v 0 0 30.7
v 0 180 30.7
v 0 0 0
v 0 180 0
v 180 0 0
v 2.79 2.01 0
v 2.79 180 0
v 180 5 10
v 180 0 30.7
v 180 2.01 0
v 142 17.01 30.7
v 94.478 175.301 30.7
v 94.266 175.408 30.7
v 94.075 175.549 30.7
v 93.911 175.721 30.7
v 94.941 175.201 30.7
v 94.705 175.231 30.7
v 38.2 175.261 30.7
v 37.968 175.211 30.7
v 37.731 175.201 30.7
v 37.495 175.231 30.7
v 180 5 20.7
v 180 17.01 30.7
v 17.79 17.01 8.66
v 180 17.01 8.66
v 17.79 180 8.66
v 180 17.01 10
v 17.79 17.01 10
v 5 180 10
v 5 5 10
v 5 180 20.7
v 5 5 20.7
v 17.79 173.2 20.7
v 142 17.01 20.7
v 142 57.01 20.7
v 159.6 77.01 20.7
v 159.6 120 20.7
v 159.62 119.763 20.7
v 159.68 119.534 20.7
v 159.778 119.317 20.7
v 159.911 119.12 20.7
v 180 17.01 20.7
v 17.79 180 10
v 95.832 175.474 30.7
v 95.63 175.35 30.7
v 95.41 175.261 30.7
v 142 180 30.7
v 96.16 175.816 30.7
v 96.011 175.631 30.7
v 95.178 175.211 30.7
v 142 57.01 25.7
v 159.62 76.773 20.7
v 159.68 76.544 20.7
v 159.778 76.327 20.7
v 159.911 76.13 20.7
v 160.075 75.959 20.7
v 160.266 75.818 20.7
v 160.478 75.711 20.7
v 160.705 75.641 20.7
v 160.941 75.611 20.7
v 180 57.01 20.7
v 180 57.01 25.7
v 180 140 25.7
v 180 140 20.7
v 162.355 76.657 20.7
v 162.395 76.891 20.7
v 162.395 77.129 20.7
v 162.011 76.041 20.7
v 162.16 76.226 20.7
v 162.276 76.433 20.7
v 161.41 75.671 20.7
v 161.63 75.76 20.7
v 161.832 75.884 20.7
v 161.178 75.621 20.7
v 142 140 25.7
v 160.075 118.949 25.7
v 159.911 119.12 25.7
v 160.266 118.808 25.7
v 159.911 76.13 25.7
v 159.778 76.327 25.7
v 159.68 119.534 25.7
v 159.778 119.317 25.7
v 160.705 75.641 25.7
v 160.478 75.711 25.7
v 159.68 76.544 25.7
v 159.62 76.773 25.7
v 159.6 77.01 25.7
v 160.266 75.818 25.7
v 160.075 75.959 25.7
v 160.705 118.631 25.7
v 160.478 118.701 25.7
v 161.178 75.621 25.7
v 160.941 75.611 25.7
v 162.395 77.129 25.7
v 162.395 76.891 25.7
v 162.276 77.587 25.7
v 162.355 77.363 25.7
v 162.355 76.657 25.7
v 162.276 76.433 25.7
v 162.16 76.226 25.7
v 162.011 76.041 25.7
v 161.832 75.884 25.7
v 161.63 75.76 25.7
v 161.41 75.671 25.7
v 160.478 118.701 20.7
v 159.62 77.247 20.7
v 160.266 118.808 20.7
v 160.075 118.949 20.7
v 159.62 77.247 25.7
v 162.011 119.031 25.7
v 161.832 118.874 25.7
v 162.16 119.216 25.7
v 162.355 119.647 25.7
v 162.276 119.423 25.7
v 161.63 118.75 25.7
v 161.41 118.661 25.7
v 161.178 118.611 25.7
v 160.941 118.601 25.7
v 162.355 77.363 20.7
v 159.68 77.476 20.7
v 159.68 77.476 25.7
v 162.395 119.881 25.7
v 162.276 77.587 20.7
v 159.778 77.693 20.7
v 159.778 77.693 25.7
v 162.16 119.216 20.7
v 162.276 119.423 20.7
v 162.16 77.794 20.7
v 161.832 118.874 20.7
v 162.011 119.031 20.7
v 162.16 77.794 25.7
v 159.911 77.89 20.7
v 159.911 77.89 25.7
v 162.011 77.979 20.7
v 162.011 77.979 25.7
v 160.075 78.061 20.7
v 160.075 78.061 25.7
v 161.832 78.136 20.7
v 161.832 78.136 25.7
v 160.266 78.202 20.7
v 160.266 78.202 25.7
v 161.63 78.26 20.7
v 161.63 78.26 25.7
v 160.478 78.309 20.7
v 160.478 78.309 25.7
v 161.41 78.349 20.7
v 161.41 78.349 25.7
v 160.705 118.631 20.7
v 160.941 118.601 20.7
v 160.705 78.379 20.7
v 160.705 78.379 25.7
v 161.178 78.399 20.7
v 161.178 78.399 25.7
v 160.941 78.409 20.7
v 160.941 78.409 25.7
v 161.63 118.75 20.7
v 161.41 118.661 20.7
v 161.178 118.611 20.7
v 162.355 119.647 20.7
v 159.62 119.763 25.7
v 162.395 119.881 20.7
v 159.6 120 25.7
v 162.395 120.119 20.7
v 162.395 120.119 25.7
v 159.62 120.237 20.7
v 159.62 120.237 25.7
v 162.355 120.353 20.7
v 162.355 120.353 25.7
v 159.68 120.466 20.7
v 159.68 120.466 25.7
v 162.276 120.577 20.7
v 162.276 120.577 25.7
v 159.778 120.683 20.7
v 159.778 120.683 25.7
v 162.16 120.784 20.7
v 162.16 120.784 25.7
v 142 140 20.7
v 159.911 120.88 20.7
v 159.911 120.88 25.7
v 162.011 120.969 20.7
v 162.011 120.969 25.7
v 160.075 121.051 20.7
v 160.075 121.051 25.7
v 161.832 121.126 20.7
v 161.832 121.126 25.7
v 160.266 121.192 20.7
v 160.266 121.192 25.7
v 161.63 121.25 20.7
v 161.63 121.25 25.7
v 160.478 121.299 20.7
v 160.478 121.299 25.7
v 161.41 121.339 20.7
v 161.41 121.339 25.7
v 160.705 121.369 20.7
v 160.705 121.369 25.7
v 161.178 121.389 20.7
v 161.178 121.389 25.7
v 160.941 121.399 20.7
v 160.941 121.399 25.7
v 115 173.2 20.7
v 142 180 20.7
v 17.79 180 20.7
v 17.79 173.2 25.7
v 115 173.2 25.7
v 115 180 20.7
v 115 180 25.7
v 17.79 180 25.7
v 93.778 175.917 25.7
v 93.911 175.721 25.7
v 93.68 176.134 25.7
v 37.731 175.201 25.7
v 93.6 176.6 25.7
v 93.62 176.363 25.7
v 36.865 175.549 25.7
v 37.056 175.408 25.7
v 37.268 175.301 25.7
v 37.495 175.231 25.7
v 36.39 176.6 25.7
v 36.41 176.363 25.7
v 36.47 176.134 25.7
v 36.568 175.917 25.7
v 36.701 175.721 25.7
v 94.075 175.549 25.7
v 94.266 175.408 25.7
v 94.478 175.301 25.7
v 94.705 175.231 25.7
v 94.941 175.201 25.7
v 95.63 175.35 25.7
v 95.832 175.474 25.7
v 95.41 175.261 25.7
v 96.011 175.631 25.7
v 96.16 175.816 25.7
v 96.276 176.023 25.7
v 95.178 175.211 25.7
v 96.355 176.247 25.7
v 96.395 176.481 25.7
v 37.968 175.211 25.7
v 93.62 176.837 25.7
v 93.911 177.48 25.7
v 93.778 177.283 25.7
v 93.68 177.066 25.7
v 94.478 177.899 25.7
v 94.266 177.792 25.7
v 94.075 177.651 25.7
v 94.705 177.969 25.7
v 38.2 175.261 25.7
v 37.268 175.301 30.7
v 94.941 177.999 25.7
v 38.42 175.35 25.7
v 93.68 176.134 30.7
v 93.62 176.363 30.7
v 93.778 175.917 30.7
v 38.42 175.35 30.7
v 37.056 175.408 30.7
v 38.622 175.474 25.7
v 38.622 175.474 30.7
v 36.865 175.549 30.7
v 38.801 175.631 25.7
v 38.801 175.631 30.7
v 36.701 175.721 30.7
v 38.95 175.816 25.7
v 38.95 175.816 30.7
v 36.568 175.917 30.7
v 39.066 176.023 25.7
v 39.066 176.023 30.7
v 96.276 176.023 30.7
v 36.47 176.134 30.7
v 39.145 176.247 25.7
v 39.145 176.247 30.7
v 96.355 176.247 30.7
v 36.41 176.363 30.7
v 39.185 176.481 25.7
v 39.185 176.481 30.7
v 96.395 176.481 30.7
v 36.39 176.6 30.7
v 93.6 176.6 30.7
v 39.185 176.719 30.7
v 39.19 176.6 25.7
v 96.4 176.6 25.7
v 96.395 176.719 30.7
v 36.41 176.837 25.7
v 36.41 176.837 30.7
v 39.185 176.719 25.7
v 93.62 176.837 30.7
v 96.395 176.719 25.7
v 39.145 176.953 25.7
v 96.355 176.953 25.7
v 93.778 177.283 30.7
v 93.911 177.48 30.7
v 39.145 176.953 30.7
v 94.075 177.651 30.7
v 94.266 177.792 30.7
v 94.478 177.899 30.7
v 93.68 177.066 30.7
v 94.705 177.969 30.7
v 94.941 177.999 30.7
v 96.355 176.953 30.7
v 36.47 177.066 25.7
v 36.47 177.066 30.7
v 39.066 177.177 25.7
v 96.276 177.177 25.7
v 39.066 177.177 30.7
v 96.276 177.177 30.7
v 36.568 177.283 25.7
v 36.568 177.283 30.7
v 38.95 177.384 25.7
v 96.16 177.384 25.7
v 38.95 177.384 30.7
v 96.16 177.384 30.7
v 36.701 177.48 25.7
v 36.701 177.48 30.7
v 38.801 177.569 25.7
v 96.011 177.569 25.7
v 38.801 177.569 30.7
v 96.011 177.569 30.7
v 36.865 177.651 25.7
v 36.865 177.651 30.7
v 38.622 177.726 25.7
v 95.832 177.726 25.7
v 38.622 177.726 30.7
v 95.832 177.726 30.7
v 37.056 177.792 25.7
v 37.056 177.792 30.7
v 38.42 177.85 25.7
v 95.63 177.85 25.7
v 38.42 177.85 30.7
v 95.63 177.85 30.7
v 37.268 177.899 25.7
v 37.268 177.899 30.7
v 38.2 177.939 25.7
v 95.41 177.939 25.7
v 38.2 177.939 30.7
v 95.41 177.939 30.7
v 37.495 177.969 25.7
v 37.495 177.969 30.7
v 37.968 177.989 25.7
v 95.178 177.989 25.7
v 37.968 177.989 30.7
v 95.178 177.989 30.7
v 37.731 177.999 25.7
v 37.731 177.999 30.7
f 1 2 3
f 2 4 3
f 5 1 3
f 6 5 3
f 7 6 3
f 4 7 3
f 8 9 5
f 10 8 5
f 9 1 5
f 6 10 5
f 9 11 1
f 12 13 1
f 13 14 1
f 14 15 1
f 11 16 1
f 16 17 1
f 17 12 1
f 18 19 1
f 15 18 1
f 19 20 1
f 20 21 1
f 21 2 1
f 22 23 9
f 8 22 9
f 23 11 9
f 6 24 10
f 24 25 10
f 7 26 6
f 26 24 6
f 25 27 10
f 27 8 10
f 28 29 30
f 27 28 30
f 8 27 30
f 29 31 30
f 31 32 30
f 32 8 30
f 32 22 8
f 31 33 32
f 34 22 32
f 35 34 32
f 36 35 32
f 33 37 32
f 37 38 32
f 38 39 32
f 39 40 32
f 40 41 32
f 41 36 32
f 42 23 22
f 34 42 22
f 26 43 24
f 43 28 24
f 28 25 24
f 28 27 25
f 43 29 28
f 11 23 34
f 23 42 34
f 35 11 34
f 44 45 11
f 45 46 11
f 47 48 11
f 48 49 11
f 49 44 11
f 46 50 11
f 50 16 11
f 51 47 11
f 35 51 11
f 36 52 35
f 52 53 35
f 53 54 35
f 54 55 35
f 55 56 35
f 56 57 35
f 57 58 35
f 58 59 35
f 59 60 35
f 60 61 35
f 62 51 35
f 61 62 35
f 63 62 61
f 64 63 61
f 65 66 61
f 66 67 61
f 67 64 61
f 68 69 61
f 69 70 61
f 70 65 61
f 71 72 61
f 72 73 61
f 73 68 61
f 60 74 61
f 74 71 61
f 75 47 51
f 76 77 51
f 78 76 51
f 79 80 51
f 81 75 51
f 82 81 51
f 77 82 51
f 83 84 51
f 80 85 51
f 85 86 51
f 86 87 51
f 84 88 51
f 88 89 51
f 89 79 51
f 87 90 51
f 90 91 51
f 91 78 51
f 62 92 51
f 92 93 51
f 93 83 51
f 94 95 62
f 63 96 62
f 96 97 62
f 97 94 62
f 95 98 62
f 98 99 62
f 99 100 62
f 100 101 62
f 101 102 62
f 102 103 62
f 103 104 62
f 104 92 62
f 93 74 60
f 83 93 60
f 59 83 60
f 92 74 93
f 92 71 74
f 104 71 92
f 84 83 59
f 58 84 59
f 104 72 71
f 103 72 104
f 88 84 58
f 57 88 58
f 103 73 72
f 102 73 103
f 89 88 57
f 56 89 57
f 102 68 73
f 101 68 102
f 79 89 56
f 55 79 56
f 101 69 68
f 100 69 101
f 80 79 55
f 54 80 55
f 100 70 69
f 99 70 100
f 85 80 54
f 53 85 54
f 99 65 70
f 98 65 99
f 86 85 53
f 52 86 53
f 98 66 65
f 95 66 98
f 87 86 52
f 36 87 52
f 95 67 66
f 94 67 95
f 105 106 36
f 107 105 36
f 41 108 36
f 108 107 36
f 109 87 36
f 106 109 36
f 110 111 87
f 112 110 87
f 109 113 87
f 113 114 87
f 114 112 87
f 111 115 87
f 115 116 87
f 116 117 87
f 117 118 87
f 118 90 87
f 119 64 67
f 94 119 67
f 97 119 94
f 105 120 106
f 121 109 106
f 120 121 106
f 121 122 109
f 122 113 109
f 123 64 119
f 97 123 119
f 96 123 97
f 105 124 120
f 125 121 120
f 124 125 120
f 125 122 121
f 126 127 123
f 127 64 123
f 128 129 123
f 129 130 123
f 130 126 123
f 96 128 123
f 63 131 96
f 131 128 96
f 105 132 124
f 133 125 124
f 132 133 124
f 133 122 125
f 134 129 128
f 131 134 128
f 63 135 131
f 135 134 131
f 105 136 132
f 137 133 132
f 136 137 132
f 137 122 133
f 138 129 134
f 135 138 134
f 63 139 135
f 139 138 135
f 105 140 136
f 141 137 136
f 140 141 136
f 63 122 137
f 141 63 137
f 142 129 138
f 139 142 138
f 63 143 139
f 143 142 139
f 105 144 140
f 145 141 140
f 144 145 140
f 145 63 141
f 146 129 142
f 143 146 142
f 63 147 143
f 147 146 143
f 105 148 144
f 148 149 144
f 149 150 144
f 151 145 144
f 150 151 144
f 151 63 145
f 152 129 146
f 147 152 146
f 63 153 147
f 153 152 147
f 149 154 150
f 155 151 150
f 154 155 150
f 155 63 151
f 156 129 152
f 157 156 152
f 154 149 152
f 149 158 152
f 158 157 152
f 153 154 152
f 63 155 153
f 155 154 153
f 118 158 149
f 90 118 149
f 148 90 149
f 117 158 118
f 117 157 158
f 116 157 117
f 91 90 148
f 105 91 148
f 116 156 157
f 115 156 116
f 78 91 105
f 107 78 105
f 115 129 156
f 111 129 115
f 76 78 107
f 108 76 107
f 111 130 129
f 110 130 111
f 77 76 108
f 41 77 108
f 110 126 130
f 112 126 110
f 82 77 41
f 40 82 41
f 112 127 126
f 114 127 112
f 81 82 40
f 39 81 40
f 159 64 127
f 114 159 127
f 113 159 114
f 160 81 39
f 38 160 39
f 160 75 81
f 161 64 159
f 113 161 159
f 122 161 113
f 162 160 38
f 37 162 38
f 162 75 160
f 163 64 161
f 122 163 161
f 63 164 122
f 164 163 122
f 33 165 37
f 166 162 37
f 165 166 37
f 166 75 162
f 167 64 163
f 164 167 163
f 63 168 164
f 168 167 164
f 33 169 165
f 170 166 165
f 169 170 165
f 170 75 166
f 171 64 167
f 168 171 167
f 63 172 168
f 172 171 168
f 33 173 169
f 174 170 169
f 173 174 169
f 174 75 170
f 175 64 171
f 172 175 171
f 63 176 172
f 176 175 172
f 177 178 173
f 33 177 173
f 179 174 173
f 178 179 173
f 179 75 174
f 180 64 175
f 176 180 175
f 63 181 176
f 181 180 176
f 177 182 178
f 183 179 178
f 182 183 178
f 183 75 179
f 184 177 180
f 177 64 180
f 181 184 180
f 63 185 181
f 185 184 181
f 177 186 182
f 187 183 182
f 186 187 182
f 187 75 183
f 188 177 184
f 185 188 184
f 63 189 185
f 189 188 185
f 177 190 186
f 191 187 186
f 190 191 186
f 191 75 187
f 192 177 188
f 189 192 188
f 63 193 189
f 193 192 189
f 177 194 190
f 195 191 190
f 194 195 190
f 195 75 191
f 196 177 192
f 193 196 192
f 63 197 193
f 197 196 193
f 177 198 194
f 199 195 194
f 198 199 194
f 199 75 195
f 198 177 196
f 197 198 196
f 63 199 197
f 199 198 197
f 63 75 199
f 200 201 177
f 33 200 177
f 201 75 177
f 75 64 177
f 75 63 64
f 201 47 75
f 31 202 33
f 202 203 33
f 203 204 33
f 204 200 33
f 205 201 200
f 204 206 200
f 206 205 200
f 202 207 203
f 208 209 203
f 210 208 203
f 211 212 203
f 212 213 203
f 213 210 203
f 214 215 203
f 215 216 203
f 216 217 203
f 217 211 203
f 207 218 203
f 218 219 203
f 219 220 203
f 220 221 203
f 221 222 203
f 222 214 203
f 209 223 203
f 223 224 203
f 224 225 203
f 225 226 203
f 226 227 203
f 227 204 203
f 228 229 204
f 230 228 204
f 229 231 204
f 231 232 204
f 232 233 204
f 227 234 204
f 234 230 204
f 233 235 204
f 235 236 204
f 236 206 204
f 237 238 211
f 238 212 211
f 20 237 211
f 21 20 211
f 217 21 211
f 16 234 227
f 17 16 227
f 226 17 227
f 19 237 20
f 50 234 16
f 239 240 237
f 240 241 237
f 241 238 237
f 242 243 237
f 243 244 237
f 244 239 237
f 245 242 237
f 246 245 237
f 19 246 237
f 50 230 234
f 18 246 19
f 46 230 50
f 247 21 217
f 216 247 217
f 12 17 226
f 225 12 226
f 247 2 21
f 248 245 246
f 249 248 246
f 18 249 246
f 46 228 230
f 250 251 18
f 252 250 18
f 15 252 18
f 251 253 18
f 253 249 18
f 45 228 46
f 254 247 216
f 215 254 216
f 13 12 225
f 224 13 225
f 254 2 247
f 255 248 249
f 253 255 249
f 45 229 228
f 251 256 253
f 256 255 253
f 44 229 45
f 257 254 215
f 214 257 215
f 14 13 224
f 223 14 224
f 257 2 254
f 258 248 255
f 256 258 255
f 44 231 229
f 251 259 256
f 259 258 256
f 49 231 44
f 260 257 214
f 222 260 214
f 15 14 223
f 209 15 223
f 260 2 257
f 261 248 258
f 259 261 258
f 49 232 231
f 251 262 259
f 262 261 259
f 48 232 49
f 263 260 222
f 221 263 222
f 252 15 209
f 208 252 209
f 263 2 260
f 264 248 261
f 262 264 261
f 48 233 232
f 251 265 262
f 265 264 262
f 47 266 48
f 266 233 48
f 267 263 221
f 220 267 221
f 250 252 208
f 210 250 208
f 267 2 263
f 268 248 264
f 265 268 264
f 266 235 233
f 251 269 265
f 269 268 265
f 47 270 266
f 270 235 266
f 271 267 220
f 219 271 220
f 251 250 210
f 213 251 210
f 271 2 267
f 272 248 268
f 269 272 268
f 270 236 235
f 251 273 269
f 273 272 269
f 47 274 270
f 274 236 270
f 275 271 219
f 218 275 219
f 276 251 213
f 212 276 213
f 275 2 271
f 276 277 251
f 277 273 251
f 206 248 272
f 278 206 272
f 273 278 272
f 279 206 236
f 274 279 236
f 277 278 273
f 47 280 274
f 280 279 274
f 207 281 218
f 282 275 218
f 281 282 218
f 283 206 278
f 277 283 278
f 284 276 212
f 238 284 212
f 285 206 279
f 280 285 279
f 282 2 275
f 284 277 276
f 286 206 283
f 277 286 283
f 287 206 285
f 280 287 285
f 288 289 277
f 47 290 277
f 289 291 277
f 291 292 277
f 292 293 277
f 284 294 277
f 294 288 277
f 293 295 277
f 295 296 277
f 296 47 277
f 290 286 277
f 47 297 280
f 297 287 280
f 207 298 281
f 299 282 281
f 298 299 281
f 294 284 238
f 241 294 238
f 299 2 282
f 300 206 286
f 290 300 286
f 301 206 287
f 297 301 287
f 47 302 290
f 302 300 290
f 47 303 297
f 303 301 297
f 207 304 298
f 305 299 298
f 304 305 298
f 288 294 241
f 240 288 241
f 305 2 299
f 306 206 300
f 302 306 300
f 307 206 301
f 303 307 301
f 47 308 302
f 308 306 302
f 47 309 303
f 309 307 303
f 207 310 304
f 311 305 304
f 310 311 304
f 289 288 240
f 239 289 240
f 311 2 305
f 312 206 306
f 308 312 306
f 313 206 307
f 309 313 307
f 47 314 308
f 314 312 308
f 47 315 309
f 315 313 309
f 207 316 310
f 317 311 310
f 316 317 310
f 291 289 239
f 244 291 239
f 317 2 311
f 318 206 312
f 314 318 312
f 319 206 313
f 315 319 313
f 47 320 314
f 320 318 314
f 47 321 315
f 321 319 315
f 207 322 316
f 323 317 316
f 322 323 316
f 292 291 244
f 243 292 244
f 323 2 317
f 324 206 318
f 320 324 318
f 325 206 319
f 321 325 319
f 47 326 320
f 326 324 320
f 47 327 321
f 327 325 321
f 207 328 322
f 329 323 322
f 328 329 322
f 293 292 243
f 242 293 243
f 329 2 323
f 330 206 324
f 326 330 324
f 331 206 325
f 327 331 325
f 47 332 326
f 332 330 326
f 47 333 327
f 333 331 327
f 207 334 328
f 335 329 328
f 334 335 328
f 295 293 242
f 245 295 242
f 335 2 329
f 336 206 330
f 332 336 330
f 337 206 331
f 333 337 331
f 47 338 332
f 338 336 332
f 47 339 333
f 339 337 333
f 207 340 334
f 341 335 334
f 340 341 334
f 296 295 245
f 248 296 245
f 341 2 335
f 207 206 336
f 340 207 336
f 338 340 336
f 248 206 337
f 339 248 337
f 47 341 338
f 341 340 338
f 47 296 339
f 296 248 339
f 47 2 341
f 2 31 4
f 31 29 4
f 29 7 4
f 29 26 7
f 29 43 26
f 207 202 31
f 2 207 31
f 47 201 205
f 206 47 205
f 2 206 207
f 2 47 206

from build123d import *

# Parameters (mm, degrees)
CROQUIS1_W              = 180
CROQUIS1_H              = 180
SALIENTE_EXTRUIR1_DEPTH = 30.7
CROQUIS2_W              = 162.21
CROQUIS2_H              = 162.99
CORTAR_EXTRUIR1_DEPTH   = 20.7
CROQUIS4_W              = 175
CROQUIS4_H              = 10.7
CORTAR_EXTRUIR2_DEPTH   = 175
CROQUIS5_W              = 38
CROQUIS5_H              = 40
CORTAR_EXTRUIR3_DEPTH   = 10
CROQUIS6_W              = 38
CROQUIS6_H              = 82.99
CORTAR_EXTRUIR4_DEPTH   = 5
CROQUIS7_W              = 97.21
CROQUIS7_H              = 6.8
CORTAR_EXTRUIR5_DEPTH   = 5
CHAFL_N1_SIZE           = 15
CHAFL_N1_SIZE2          = 8.660254038
CROQUIS8_R              = 1.4
CORTAR_EXTRUIR6_DEPTH   = 20


with BuildPart() as part:
    # Croquis1 → Saliente-Extruir1 (new body)
    with BuildSketch(Plane.XY):
        with Locations((90, 90)):
            Rectangle(CROQUIS1_W, CROQUIS1_H)
    extrude(amount=SALIENTE_EXTRUIR1_DEPTH)

    # Croquis2 → Cortar-Extruir1 (cut)
    with BuildSketch(Plane(origin=(0, 0, 0), x_dir=(-1, 0, 0), z_dir=(0, 0, -1))):
        with Locations((-98.895, 98.505)):
            Rectangle(CROQUIS2_W, CROQUIS2_H)
    extrude(amount=-CORTAR_EXTRUIR1_DEPTH, mode=Mode.SUBTRACT)

    # Croquis4 → Cortar-Extruir2 (cut)
    with BuildSketch(Plane(origin=(0, 180, 0), x_dir=(1, 0, 0), z_dir=(0, 1, 0))):
        with Locations((92.5, -15.35)):
            Rectangle(CROQUIS4_W, CROQUIS4_H)
    extrude(amount=-CORTAR_EXTRUIR2_DEPTH, mode=Mode.SUBTRACT)

    # Croquis5 → Cortar-Extruir3 (cut)
    with BuildSketch(Plane(origin=(0, 0, 20.7), x_dir=(-1, 0, 0), z_dir=(0, 0, -1))):
        with Locations((-161, 160)):
            Rectangle(CROQUIS5_W, CROQUIS5_H)
        with Locations((-161, 37.01)):
            Rectangle(CROQUIS5_W, CROQUIS5_H)
    extrude(amount=-CORTAR_EXTRUIR3_DEPTH, mode=Mode.SUBTRACT)

    # Croquis6 → Cortar-Extruir4 (cut)
    with BuildSketch(Plane.XY.offset(30.7)):
        with Locations((161, 98.505)):
            Rectangle(CROQUIS6_W, CROQUIS6_H)
    extrude(amount=-CORTAR_EXTRUIR4_DEPTH, mode=Mode.SUBTRACT)

    # Croquis7 → Cortar-Extruir5 (cut)
    with BuildSketch(Plane(origin=(0, 0, 20.7), x_dir=(-1, 0, 0), z_dir=(0, 0, -1))):
        with Locations((-66.395, 176.6)):
            Rectangle(CROQUIS7_W, CROQUIS7_H)
    extrude(amount=-CORTAR_EXTRUIR5_DEPTH, mode=Mode.SUBTRACT)

    # Chaflán1
    chafl_n1_edges = [part.edges().sort_by_distance(p)[0] for p in [
        (98.895, 17.01, 0),
        (17.79, 98.505, 0),
    ]]
    chafl_n1_side = [part.faces().sort_by_distance(p)[0] for p in [
        (2.545584412, 90, 0),
    ]]
    chamfer(chafl_n1_edges, length=CHAFL_N1_SIZE, length2=CHAFL_N1_SIZE2, reference=chafl_n1_side[0])

    # Croquis8 → Cortar-Extruir6 (cut)
    with BuildSketch(Plane(origin=(0, 0, 20.7), x_dir=(-1, 0, 0), z_dir=(0, 0, -1))):
        with Locations((-37.79, 176.6)):
            Circle(CROQUIS8_R)
        with Locations((-95, 176.6)):
            Circle(CROQUIS8_R)
        with Locations((-161, 120)):
            Circle(CROQUIS8_R)
        with Locations((-161, 77.01)):
            Circle(CROQUIS8_R)
    extrude(amount=-CORTAR_EXTRUIR6_DEPTH, mode=Mode.SUBTRACT)


solid = part.part
